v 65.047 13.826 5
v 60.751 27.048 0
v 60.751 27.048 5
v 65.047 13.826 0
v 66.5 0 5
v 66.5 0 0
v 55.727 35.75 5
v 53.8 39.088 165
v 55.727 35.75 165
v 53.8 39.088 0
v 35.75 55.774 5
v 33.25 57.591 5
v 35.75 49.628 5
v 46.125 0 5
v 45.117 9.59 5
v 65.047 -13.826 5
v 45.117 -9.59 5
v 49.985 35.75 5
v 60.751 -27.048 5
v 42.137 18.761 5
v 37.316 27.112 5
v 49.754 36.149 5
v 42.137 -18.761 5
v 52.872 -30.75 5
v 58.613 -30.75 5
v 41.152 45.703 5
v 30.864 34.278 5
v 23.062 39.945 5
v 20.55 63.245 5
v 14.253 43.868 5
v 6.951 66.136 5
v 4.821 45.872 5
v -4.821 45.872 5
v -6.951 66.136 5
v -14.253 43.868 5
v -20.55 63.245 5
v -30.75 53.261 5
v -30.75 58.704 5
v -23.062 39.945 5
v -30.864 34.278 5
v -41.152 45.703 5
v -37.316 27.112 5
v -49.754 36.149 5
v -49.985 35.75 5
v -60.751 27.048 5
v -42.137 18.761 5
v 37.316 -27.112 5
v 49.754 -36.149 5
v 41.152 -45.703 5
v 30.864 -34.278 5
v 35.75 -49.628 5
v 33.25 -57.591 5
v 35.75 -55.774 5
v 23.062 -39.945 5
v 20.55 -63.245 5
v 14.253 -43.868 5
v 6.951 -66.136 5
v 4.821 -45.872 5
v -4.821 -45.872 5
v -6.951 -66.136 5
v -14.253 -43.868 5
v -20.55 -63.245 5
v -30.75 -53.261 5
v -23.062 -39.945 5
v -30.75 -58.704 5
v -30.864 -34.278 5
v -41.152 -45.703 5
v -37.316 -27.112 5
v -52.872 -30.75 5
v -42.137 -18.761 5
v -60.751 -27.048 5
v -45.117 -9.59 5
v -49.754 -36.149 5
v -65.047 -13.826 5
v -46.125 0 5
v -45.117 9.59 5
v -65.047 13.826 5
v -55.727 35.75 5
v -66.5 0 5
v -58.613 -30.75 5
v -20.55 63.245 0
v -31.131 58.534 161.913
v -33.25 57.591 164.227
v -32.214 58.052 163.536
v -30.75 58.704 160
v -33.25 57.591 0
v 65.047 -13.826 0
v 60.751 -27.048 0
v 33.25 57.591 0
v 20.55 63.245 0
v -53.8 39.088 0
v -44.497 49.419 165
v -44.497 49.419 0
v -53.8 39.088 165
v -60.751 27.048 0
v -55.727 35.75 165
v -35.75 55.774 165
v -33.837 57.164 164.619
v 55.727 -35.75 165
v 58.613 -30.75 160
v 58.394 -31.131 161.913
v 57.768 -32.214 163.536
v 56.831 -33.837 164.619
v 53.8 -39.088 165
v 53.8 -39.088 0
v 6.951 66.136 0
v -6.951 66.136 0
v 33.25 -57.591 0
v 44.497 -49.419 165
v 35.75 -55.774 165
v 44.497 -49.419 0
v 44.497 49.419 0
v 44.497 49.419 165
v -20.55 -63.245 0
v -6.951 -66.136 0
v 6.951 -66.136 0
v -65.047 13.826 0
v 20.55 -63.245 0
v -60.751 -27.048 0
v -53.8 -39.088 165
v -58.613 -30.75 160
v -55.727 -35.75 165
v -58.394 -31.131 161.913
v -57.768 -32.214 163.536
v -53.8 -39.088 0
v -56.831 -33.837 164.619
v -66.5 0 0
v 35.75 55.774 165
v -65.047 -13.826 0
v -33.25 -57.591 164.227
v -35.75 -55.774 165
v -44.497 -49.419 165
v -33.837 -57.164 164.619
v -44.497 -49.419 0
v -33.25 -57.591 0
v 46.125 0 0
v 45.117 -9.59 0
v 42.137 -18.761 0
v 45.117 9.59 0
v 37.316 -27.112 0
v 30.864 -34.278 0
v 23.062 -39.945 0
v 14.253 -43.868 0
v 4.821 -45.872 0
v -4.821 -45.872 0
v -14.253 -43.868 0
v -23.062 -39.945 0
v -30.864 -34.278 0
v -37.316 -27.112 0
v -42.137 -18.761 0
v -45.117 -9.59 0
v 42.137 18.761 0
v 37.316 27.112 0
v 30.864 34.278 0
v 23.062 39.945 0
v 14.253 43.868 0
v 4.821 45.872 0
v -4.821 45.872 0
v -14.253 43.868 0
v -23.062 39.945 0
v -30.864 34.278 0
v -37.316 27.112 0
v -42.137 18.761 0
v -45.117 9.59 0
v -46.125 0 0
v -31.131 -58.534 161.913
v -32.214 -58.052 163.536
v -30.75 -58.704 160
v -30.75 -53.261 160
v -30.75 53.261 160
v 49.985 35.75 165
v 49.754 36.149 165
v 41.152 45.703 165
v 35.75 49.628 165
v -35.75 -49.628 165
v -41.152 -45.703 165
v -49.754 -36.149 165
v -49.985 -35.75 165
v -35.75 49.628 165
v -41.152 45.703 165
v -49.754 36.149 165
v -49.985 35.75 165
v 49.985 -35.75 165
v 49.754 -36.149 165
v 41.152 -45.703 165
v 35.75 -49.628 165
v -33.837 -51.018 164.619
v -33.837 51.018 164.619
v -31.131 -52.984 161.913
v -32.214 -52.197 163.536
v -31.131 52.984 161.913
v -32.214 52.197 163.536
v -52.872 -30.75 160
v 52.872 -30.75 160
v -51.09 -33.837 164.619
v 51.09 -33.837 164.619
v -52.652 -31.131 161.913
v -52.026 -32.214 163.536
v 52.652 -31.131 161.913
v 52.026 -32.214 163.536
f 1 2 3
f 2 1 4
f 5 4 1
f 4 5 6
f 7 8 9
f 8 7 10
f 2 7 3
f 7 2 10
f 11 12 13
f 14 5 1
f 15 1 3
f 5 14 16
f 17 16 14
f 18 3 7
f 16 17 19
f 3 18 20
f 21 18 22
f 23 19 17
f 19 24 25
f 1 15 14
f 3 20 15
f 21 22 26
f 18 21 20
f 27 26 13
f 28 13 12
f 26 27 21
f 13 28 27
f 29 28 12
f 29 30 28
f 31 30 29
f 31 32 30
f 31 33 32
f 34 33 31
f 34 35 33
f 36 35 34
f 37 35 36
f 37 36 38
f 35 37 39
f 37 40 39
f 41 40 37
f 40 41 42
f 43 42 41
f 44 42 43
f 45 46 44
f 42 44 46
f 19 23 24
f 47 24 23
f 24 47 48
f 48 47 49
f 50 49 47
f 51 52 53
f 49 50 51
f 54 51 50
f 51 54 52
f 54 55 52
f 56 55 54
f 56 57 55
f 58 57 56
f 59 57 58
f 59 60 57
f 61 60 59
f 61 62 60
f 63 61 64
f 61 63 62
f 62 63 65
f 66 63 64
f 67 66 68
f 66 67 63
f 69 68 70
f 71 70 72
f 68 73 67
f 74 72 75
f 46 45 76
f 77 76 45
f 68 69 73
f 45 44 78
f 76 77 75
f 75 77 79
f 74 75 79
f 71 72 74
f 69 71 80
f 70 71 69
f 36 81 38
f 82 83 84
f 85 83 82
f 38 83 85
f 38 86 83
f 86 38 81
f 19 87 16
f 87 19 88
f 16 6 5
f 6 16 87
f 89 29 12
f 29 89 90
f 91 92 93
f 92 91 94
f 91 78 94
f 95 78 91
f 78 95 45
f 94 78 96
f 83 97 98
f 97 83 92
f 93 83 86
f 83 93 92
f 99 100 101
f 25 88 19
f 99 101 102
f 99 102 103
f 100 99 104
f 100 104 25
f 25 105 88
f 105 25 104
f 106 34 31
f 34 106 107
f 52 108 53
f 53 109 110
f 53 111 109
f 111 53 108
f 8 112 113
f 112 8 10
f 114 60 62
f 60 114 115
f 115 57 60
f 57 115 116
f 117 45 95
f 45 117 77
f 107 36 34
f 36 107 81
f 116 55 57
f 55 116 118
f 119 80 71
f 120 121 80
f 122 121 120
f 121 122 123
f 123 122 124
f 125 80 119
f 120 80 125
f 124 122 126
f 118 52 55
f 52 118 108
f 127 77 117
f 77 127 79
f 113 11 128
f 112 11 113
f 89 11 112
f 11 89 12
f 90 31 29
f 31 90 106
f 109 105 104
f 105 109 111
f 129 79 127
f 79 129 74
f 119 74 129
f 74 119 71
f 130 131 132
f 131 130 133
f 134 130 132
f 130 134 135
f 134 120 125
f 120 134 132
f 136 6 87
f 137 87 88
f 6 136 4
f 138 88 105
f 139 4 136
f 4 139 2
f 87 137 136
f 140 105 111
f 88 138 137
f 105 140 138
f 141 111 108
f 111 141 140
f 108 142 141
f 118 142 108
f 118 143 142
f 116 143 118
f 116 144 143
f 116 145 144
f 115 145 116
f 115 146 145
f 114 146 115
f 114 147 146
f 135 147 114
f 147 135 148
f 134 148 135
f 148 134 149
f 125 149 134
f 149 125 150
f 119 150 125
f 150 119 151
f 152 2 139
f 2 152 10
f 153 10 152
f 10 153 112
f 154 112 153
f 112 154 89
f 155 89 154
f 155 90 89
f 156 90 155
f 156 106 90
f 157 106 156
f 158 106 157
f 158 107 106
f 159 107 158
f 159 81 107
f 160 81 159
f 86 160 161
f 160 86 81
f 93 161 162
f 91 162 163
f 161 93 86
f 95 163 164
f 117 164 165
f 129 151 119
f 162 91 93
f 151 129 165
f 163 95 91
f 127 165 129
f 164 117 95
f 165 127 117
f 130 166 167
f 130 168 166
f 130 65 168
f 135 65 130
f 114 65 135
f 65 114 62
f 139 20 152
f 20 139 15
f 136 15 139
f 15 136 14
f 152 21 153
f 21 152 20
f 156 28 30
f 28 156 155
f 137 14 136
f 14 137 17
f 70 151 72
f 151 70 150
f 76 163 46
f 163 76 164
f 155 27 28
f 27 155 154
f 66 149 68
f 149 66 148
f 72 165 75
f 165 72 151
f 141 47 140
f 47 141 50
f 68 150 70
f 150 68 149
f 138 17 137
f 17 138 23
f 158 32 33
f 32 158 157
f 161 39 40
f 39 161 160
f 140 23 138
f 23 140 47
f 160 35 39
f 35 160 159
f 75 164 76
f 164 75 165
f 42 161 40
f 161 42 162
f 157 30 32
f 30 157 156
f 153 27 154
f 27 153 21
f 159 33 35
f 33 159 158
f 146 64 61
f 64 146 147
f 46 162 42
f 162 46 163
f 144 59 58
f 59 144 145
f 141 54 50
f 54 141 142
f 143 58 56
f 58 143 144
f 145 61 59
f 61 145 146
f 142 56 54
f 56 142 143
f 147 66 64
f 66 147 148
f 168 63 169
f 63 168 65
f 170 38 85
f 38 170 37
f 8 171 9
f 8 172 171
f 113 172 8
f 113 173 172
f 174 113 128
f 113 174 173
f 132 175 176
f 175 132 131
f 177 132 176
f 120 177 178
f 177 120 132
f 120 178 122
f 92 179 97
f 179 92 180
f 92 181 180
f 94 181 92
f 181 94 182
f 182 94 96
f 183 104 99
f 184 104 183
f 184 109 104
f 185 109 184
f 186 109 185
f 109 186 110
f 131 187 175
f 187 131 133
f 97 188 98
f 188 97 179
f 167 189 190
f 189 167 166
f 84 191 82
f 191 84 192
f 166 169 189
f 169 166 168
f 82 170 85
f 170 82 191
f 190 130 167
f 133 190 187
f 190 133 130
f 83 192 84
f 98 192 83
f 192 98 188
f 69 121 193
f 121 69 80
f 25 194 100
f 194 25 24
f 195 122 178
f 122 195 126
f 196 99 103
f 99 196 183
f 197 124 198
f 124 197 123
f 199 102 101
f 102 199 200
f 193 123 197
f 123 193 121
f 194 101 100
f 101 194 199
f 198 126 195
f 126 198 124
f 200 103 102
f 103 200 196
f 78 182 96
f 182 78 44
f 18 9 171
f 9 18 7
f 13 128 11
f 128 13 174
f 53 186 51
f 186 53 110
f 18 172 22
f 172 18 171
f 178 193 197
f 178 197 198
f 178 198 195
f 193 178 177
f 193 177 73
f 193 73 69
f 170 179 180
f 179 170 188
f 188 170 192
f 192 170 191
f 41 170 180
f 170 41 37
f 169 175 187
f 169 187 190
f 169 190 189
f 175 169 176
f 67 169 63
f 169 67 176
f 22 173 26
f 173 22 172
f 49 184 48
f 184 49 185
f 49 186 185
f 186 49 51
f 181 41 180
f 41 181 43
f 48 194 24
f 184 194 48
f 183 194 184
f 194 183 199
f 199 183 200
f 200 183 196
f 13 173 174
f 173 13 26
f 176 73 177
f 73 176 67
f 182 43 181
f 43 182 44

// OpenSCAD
union() {
	difference() {
		cylinder(h = 5, r = 66.5);
		cylinder(h = 5, r = 46.125);
	}
	difference() {
		cylinder(h = 165, r = 66.5);
		cylinder(h = 165, r = 61.5);
		union() {
			translate(v = [0, -76.875, 0]) {
				translate(v = [-30.75, 0, 0]) {
					cube(size = [66.5, 184.5, 165]);
				}
			}
			translate(v = [0, -76.875, 0]) {
				translate(v = [-35.75, 0, 0]) {
					translate(v = [0, 0, 160]) {
						difference() {
							cube(size = [5, 184.5, 5]);
							rotate(a = [-90, 0, 0]) {
								cylinder(h = 184.5, r = 5);
							}
						}
					}
				}
			}
			mirror(v = [1, 0, 0]) {
				translate(v = [0, -76.875, 0]) {
					translate(v = [-35.75, 0, 0]) {
						translate(v = [0, 0, 160]) {
							difference() {
								cube(size = [5, 184.5, 5]);
								rotate(a = [-90, 0, 0]) {
									cylinder(h = 184.5, r = 5);
								}
							}
						}
					}
				}
			}
			rotate(a = 90) {
				union() {
					translate(v = [0, -76.875, 0]) {
						translate(v = [-30.75, 0, 0]) {
							cube(size = [66.5, 184.5, 165]);
						}
					}
					translate(v = [0, -76.875, 0]) {
						translate(v = [-35.75, 0, 0]) {
							translate(v = [0, 0, 160]) {
								difference() {
									cube(size = [5, 184.5, 5]);
									rotate(a = [-90, 0, 0]) {
										cylinder(h = 184.5, r = 5);
									}
								}
							}
						}
					}
					mirror(v = [1, 0, 0]) {
						translate(v = [0, -76.875, 0]) {
							translate(v = [-35.75, 0, 0]) {
								translate(v = [0, 0, 160]) {
									difference() {
										cube(size = [5, 184.5, 5]);
										rotate(a = [-90, 0, 0]) {
											cylinder(h = 184.5, r = 5);
										}
									}
								}
							}
						}
					}
				}
			}
		}
	}
}
